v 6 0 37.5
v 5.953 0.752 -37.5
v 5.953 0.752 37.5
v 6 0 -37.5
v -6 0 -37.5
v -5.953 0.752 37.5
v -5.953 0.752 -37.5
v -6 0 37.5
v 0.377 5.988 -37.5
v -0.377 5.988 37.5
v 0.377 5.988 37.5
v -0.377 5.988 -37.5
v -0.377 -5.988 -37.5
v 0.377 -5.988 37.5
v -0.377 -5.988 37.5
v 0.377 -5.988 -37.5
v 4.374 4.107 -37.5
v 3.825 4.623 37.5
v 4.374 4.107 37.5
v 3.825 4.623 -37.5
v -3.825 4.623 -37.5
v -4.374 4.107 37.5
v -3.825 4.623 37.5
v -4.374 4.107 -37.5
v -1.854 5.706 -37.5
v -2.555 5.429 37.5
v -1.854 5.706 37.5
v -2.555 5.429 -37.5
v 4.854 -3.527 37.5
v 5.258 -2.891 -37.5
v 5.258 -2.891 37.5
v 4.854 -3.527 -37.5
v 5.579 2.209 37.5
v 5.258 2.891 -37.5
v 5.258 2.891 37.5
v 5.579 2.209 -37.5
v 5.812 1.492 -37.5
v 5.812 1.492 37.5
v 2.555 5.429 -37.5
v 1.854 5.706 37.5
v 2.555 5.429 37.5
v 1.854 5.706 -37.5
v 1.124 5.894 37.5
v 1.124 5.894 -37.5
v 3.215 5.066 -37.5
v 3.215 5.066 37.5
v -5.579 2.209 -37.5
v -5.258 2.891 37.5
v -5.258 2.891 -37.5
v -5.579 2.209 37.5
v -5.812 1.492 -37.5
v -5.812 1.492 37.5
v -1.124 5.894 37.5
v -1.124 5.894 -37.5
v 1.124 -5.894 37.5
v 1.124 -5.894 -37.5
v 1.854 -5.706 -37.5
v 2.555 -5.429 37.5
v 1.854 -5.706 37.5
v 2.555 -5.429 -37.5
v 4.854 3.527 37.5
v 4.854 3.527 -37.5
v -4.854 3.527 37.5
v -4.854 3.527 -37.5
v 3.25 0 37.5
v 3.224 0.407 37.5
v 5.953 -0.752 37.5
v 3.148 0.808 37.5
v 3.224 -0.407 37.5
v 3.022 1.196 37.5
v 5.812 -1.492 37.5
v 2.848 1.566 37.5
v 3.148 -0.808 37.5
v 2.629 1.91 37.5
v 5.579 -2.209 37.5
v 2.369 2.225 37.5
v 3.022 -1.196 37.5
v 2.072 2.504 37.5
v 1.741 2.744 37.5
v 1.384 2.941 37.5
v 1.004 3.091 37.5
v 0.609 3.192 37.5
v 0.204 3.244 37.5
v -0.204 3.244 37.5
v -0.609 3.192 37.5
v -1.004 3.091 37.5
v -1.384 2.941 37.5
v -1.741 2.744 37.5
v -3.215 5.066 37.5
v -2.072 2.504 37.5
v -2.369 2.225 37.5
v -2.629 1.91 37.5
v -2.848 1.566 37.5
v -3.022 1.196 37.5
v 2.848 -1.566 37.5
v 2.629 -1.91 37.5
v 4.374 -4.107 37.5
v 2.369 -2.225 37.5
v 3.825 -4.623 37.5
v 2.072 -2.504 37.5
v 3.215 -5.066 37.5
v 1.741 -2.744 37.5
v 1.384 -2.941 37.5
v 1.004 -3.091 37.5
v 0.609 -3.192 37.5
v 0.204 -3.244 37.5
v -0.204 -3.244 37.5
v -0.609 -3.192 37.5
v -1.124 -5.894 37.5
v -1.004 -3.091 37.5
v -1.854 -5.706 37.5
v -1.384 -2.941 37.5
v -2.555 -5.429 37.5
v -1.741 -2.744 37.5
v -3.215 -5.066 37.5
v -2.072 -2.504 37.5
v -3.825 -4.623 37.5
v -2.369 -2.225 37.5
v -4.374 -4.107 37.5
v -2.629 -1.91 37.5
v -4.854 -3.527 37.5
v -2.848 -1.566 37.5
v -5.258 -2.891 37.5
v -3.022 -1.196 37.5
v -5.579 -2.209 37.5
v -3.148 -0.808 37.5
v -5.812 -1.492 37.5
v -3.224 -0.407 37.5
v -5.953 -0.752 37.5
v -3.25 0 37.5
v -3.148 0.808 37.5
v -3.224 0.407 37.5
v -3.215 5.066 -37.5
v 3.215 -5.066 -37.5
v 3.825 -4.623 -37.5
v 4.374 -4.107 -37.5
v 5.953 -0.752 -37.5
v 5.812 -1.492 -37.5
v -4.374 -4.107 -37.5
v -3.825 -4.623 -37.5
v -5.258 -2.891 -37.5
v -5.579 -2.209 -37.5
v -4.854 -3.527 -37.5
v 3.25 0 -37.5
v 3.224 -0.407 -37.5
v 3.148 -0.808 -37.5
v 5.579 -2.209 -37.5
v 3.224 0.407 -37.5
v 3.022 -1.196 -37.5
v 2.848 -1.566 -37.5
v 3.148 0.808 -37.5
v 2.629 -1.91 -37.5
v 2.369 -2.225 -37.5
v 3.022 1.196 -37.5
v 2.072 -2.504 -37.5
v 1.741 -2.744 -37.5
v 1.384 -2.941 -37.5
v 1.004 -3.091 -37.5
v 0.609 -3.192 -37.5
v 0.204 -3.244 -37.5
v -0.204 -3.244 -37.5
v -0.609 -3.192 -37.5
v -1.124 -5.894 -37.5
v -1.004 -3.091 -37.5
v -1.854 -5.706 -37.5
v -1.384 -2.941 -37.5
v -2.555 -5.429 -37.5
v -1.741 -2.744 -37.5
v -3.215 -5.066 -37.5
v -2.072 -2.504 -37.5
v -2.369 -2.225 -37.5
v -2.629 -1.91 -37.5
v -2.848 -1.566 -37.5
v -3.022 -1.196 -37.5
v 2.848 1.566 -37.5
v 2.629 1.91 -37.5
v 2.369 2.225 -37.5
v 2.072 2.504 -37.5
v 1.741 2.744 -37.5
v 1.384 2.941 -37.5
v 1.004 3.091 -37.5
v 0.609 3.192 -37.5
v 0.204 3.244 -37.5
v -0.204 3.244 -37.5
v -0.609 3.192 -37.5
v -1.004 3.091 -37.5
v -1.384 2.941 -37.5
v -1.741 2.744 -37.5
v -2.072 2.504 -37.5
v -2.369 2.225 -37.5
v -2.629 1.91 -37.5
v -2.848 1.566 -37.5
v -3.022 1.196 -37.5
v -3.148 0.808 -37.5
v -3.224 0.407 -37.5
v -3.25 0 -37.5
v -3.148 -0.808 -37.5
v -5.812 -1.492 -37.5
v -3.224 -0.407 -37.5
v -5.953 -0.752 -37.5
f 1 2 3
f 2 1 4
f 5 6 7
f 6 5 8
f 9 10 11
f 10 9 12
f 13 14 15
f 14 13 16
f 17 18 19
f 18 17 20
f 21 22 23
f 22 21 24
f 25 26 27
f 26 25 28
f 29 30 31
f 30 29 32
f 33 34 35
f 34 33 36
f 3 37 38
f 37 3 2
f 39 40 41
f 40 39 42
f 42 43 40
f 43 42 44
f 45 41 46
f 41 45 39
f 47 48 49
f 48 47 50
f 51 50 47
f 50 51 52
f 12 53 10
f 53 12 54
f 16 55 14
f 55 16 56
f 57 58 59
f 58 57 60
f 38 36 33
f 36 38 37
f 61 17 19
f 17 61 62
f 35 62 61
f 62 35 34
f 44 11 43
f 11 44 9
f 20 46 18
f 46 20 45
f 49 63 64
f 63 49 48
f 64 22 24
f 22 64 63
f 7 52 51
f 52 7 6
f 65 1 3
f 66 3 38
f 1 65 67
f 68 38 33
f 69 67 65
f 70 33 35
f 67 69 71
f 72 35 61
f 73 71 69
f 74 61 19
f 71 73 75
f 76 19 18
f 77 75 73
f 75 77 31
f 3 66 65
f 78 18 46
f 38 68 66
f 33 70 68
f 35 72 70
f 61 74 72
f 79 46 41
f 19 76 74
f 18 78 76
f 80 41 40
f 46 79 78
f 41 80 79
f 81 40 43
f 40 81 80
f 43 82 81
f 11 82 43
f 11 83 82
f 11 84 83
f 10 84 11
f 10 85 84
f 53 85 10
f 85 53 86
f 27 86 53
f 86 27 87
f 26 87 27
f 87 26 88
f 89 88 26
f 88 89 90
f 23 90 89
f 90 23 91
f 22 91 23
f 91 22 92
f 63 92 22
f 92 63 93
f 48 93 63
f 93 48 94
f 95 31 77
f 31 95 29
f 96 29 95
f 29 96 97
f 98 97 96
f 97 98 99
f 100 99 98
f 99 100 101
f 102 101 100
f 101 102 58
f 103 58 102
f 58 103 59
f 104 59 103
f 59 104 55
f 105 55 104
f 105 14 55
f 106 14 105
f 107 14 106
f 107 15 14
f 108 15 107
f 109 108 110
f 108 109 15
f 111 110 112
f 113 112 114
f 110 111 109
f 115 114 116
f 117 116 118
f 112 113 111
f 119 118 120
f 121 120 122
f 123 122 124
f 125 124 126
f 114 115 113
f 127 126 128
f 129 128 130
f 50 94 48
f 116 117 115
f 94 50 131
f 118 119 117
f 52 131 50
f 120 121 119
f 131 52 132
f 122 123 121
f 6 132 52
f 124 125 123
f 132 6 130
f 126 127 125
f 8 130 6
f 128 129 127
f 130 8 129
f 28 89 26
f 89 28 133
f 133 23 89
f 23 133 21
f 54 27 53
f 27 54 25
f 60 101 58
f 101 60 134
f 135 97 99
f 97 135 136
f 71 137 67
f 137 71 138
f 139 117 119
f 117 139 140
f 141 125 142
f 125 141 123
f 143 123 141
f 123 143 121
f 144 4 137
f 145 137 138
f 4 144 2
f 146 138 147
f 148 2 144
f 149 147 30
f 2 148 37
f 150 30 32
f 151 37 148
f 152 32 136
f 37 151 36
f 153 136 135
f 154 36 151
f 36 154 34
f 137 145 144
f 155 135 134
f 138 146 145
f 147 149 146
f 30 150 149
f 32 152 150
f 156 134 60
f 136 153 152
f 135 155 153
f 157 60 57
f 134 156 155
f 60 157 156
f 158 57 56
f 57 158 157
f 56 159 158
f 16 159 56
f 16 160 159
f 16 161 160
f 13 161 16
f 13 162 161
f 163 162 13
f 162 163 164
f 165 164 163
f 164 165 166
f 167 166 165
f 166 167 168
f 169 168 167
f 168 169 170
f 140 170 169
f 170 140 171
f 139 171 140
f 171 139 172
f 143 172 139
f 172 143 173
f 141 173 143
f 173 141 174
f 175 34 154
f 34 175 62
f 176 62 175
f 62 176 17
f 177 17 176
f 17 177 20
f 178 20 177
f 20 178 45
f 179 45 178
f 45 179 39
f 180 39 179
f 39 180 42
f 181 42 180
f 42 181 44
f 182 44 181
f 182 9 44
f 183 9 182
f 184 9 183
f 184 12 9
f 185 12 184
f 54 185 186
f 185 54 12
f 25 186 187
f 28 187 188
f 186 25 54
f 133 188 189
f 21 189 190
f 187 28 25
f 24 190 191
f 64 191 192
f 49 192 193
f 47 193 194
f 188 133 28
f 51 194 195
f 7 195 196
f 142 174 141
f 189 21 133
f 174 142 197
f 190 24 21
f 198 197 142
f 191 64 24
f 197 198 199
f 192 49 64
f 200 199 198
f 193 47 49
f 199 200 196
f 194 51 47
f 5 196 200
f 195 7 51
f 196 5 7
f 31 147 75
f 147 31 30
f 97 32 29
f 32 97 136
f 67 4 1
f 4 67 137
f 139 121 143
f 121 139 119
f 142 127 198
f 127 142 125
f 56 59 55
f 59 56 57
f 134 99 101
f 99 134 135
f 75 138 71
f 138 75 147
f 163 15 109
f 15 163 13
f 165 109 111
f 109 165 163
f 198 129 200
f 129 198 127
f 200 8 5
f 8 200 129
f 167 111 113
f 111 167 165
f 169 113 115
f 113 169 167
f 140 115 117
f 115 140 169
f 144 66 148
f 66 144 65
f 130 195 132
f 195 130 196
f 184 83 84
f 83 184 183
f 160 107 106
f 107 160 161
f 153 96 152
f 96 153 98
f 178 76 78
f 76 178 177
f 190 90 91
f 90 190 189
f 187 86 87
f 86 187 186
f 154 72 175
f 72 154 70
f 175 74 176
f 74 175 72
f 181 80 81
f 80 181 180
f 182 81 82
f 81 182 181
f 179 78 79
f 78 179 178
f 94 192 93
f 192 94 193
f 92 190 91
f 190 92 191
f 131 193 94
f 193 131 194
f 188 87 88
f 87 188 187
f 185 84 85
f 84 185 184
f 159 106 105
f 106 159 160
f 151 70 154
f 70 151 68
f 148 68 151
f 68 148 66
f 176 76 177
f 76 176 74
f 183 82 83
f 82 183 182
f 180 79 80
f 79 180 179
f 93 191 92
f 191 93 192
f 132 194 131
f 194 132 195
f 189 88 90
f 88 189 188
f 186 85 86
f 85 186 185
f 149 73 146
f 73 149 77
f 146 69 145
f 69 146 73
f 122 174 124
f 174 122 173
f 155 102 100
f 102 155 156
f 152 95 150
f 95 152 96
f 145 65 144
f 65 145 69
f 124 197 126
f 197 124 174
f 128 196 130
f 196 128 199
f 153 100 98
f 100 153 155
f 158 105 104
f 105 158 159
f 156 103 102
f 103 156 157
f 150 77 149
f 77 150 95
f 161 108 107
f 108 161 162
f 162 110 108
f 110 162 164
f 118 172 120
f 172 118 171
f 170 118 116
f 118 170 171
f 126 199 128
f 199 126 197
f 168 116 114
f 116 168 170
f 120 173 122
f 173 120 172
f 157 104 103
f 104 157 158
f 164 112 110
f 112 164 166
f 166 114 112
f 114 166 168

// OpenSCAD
$fn = 50;


difference() {
	union() {
		translate(v = [0, 0, -37.5000000000]) {
			cylinder(h = 75, r = 6.0000000000);
		}
	}
	union() {
		translate(v = [0, 0, -100.0000000000]) {
			cylinder(h = 200, r = 3.2500000000);
		}
	}
}
